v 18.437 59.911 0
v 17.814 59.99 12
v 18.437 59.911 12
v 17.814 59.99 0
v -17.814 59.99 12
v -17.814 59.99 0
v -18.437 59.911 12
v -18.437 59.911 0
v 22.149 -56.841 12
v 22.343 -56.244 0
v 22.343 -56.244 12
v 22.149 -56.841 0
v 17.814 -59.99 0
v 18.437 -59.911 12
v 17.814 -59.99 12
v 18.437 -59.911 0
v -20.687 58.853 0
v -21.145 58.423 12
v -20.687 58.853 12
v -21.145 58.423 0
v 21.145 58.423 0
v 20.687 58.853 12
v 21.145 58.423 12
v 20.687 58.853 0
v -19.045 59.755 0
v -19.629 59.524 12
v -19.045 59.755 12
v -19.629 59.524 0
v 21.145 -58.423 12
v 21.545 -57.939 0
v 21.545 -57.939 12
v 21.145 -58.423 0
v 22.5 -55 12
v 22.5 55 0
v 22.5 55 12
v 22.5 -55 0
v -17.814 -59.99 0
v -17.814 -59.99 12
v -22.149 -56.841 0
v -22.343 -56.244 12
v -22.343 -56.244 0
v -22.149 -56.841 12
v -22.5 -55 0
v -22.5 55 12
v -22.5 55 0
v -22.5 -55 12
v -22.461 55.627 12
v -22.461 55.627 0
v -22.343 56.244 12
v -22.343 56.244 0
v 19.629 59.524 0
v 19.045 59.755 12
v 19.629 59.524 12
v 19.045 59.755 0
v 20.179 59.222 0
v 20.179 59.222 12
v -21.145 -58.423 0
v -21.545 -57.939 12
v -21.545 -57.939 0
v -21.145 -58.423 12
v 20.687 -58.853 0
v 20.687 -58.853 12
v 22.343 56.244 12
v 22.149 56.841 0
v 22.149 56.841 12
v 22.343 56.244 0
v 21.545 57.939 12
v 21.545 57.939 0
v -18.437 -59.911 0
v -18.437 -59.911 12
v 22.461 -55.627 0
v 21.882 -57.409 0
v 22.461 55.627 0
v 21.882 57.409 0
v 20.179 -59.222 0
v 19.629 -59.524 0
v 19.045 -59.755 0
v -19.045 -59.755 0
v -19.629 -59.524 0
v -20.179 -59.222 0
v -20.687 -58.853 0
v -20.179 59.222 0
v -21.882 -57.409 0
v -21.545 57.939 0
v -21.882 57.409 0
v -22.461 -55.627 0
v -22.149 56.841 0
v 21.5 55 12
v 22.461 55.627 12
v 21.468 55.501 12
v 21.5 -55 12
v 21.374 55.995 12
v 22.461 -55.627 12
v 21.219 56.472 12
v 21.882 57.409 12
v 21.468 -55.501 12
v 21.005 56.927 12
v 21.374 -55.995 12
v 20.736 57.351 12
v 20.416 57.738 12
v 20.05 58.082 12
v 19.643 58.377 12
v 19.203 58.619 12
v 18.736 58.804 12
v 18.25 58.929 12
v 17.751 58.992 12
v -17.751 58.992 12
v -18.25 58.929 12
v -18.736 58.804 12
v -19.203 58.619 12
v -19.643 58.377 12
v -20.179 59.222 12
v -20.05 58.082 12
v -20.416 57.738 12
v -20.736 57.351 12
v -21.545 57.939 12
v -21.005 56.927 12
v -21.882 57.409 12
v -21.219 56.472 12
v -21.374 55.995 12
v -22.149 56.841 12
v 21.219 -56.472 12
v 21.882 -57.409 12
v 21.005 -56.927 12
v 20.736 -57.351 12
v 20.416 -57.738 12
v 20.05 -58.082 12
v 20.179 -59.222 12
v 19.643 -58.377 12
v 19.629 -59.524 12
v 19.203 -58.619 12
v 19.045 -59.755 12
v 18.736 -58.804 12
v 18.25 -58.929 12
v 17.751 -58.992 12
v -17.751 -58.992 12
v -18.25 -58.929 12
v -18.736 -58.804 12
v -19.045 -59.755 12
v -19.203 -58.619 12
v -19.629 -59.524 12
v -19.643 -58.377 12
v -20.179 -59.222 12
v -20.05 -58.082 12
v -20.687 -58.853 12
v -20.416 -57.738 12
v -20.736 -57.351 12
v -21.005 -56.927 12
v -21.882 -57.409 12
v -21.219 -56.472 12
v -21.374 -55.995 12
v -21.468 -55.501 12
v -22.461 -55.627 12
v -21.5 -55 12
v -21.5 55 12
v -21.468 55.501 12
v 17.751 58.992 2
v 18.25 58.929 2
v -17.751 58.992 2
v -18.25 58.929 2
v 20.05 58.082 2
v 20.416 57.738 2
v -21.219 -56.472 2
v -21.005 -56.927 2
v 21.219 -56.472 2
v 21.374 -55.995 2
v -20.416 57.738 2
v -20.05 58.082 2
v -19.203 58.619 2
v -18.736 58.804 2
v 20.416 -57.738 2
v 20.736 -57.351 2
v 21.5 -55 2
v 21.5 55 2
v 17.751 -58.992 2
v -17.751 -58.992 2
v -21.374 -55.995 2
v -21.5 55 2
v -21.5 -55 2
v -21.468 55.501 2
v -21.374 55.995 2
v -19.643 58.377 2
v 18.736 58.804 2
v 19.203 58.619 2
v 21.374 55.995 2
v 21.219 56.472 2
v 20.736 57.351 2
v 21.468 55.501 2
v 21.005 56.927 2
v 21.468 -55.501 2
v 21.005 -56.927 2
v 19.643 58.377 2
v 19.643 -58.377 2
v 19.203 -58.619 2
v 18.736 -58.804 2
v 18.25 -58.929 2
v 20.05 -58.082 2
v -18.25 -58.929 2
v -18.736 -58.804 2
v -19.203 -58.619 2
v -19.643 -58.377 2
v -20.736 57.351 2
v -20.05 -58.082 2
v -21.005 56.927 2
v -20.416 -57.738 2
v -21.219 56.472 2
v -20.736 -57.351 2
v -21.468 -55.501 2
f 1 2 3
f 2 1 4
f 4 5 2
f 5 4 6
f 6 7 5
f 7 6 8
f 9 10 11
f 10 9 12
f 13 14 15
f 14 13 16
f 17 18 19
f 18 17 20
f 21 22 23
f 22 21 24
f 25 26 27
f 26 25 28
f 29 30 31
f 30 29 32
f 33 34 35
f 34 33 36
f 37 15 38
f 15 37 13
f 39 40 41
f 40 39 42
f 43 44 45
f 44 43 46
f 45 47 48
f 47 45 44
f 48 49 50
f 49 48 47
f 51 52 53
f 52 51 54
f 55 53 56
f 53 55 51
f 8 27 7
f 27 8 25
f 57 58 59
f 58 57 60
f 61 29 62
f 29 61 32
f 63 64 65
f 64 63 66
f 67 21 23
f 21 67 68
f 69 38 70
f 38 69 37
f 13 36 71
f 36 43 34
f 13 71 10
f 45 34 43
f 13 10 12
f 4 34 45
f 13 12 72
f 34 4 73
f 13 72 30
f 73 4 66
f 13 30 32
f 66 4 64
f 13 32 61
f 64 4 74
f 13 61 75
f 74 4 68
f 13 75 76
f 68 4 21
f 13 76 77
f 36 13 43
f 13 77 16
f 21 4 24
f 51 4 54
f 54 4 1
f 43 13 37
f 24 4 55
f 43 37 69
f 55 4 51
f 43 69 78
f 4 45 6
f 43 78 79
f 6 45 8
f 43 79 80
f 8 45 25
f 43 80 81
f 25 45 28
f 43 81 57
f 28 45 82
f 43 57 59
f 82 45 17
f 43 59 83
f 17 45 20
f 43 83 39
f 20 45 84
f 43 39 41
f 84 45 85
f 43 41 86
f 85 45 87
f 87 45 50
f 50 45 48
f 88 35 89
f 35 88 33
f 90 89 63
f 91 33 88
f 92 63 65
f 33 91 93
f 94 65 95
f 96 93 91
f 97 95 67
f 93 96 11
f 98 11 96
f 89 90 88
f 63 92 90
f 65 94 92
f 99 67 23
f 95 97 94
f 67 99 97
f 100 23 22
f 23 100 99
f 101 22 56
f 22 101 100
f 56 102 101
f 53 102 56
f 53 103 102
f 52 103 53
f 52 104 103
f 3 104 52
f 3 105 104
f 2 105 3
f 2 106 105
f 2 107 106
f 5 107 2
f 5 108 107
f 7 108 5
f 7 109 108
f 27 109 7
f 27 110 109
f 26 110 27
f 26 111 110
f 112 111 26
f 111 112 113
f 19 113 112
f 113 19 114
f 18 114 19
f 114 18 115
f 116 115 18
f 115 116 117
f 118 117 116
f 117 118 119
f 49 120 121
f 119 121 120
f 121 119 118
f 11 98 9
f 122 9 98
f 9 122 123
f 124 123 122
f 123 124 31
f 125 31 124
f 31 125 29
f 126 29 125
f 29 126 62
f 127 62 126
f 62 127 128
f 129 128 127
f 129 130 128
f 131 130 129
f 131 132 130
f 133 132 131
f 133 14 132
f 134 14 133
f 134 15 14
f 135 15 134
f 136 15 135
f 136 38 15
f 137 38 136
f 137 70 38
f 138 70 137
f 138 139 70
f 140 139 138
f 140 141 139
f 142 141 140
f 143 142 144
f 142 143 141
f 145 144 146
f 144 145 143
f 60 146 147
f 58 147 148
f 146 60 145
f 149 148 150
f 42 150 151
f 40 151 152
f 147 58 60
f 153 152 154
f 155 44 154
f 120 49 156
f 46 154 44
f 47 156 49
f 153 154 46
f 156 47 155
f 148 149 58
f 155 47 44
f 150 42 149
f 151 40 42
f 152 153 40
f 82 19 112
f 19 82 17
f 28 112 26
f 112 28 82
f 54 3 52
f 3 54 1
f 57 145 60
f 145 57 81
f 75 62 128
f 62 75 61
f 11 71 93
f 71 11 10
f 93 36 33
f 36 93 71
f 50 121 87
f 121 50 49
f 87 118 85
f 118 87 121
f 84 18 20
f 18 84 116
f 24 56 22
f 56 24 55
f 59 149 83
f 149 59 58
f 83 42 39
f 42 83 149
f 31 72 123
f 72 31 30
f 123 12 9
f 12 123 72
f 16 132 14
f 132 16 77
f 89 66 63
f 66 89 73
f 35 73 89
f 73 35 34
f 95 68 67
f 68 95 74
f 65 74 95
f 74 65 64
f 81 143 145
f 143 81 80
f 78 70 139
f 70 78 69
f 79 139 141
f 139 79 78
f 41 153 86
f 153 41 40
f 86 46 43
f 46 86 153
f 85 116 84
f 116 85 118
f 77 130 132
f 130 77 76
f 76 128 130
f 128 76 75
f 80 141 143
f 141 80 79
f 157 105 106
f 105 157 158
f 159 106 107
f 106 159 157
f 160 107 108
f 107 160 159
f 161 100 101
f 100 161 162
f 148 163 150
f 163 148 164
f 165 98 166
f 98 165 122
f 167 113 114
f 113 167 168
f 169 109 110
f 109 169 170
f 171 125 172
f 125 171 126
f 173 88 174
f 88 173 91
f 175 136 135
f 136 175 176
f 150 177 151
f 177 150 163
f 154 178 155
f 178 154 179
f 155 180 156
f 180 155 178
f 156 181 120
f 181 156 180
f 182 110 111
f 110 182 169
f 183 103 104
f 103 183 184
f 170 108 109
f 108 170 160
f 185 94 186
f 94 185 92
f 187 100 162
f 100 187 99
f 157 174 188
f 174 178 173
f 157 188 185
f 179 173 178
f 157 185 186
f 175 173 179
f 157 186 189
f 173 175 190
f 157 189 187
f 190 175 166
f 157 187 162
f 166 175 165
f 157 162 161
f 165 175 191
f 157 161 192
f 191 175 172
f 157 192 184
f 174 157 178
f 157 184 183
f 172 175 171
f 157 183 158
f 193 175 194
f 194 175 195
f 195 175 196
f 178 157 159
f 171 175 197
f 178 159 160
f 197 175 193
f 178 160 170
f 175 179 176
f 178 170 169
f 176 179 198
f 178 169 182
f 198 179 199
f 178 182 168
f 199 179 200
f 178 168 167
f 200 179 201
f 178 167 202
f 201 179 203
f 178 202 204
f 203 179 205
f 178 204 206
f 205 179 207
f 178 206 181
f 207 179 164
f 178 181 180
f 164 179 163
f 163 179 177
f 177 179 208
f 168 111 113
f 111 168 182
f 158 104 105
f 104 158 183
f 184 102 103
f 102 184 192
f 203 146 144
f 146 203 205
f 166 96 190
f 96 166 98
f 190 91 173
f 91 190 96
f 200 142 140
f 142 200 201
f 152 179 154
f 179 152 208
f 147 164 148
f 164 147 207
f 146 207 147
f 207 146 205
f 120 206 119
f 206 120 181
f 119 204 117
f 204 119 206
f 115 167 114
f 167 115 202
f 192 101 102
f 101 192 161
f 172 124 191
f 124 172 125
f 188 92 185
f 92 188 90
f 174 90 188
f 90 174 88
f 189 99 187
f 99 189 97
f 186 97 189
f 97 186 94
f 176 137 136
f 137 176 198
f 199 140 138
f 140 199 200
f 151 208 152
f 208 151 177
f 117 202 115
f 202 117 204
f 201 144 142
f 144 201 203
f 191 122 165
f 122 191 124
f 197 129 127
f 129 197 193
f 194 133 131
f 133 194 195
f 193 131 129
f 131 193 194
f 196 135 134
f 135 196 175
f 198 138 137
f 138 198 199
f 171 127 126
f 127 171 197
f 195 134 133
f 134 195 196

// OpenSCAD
$fn = 50;


difference() {
	union() {
		hull() {
			translate(v = [-17.5000000000, 55.0000000000, 0]) {
				cylinder(h = 12, r = 5);
			}
			translate(v = [17.5000000000, 55.0000000000, 0]) {
				cylinder(h = 12, r = 5);
			}
			translate(v = [-17.5000000000, -55.0000000000, 0]) {
				cylinder(h = 12, r = 5);
			}
			translate(v = [17.5000000000, -55.0000000000, 0]) {
				cylinder(h = 12, r = 5);
			}
		}
	}
	union() {
		translate(v = [0, 0, 2]) {
			hull() {
				translate(v = [-17.5000000000, 55.0000000000, 0]) {
					cylinder(h = 10, r = 4);
				}
				translate(v = [17.5000000000, 55.0000000000, 0]) {
					cylinder(h = 10, r = 4);
				}
				translate(v = [-17.5000000000, -55.0000000000, 0]) {
					cylinder(h = 10, r = 4);
				}
				translate(v = [17.5000000000, -55.0000000000, 0]) {
					cylinder(h = 10, r = 4);
				}
			}
		}
	}
}
